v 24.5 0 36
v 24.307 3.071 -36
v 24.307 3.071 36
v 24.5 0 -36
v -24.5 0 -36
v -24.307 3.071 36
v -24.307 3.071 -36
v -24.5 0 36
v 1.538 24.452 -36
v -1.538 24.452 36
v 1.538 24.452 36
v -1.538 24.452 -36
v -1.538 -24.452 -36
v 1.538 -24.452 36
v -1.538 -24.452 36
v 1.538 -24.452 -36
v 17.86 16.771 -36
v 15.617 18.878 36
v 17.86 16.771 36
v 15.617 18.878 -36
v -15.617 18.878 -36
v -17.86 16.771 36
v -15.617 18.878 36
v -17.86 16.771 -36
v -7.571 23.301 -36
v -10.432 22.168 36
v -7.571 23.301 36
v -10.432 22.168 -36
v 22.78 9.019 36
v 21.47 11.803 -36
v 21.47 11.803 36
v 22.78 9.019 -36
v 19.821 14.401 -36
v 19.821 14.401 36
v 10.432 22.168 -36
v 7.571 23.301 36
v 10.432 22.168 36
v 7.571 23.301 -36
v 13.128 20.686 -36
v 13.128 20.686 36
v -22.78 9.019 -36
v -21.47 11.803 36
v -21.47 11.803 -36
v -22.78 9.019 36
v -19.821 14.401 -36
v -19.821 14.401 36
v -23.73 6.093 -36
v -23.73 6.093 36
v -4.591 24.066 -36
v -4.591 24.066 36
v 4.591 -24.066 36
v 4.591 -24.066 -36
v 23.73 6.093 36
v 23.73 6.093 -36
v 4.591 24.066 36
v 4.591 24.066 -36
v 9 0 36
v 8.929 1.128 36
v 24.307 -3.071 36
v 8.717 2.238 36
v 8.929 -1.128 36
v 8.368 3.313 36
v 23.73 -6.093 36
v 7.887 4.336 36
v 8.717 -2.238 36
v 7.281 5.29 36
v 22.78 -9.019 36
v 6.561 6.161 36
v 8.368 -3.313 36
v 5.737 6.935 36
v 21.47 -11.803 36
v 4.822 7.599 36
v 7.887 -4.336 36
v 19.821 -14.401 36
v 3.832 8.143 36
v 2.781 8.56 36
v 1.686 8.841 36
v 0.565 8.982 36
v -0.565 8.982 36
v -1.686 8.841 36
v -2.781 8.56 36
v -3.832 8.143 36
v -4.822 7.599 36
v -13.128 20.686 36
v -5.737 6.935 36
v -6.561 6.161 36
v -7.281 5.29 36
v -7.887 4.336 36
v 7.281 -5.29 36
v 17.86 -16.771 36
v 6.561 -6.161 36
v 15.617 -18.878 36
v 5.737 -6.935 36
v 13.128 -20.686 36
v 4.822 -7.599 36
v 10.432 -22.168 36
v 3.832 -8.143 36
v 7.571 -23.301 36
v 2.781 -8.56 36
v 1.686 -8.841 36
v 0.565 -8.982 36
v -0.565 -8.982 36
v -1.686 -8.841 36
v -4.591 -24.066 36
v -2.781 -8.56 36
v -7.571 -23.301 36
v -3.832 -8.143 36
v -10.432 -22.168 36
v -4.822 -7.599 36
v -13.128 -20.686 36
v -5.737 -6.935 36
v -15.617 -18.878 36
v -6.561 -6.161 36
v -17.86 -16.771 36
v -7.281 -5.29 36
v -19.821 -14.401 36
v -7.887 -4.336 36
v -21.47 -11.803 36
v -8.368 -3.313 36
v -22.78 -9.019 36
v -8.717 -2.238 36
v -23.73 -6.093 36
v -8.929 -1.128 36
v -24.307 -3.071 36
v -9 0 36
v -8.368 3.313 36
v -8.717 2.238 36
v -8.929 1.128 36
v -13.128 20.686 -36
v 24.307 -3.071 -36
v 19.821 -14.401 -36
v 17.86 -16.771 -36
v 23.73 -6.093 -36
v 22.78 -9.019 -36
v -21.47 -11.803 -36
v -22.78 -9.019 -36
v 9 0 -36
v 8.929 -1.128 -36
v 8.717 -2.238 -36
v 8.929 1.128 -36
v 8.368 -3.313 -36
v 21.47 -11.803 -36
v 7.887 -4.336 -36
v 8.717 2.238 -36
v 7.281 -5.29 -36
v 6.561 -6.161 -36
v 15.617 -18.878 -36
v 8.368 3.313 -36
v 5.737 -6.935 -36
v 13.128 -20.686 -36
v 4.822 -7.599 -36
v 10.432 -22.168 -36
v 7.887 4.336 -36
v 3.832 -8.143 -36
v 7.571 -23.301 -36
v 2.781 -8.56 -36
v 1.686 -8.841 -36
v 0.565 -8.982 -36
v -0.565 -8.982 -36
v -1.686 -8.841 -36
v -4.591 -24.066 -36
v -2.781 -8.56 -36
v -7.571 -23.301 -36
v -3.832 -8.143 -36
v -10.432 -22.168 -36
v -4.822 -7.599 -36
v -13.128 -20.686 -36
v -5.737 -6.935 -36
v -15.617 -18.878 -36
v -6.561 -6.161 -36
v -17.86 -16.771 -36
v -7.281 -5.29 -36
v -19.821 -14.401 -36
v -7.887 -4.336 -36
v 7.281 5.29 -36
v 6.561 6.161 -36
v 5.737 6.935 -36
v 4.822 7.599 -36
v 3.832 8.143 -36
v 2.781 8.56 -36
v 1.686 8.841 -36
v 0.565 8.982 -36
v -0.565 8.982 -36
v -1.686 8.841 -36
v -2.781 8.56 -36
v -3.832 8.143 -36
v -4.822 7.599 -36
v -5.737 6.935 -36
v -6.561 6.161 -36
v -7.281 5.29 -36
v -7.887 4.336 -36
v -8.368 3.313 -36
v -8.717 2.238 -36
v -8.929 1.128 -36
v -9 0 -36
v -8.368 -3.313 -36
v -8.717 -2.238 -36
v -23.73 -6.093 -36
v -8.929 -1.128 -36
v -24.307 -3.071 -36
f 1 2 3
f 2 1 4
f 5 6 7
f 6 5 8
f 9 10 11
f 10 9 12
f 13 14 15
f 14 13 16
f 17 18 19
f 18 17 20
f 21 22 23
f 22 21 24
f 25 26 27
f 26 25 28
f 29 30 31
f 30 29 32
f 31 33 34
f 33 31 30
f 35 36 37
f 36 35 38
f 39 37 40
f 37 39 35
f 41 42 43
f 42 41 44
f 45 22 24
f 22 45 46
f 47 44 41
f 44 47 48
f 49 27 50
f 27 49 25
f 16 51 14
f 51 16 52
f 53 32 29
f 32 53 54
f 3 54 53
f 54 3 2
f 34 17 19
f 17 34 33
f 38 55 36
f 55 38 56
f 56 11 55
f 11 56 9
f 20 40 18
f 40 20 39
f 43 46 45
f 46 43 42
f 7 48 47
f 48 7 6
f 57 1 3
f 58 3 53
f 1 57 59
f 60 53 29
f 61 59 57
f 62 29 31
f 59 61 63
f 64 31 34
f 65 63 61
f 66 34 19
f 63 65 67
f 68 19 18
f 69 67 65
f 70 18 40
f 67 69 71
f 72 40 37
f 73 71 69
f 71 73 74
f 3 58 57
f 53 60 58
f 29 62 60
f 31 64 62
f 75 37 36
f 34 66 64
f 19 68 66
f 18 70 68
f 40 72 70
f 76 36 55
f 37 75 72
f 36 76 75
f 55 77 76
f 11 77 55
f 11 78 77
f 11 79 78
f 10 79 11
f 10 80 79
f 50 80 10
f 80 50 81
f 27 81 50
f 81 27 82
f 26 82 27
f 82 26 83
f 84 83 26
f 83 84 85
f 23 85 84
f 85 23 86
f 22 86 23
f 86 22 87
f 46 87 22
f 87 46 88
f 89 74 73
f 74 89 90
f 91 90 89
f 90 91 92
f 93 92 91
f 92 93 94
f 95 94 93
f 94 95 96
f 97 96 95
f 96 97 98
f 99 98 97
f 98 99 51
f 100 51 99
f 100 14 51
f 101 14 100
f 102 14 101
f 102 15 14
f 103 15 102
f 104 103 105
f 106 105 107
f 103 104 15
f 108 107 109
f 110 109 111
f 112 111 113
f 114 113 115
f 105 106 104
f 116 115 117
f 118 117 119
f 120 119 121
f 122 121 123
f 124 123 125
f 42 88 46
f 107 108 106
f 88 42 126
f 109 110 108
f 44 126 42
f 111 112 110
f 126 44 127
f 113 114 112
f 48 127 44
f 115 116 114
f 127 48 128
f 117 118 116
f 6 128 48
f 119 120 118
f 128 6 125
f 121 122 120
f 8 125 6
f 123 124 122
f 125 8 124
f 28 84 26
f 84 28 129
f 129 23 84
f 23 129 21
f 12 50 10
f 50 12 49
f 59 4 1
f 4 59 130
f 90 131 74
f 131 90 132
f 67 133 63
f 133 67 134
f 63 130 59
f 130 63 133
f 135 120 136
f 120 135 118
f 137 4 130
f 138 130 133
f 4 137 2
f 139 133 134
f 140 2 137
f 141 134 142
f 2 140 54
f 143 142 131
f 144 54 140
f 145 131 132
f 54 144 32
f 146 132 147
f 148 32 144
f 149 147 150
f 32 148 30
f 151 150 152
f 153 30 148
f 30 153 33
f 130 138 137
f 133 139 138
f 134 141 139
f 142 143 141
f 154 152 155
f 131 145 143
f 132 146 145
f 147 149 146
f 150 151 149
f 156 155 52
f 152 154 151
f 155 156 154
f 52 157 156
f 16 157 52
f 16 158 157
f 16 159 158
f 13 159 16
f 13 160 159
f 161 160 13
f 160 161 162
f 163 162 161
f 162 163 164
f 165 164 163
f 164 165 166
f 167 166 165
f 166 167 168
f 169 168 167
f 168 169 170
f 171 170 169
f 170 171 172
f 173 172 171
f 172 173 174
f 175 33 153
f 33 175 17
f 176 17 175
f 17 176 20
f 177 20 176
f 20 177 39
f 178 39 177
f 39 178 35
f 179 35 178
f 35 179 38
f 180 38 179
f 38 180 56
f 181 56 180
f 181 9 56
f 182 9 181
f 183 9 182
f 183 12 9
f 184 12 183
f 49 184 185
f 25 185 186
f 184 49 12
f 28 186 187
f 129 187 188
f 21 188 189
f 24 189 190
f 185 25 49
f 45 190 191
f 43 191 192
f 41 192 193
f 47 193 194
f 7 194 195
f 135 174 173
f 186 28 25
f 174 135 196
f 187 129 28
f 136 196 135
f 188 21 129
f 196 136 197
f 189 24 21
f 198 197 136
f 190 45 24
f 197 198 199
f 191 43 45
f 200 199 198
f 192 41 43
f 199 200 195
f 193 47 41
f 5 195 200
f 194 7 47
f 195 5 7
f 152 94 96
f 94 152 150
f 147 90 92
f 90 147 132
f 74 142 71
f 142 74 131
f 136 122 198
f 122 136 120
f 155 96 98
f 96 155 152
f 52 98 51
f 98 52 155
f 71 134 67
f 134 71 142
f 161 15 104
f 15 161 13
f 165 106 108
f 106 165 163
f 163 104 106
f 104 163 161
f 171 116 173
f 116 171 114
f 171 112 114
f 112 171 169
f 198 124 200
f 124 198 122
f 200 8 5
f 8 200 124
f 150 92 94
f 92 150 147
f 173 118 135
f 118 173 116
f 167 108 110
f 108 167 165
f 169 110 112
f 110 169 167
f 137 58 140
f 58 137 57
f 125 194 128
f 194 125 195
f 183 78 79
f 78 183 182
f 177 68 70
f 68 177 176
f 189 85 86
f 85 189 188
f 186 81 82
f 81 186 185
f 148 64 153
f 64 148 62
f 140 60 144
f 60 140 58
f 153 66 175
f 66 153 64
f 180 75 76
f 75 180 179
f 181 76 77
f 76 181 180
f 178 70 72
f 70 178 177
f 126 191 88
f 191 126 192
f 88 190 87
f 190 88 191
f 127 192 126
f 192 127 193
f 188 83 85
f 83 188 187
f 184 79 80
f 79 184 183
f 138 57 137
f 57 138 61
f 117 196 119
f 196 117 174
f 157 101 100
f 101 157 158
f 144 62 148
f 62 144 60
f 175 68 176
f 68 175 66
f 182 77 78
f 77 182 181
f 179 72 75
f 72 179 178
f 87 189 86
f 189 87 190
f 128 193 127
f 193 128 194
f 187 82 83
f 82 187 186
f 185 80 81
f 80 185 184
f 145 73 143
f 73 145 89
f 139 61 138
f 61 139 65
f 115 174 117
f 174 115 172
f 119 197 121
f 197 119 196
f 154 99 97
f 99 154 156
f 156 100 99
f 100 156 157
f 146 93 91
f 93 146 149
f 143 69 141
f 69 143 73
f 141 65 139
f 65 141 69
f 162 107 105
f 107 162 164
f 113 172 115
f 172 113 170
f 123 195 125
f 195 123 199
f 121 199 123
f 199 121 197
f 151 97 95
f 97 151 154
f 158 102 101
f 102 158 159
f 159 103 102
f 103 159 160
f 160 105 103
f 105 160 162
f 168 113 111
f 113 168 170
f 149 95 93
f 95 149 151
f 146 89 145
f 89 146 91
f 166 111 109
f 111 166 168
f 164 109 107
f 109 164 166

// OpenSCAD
$fn = 50;


difference() {
	union() {
		translate(v = [0, 0, -36.0000000000]) {
			cylinder(h = 72, r = 24.5000000000);
		}
	}
	union() {
		translate(v = [0, 0, -100.0000000000]) {
			cylinder(h = 200, r = 9);
		}
	}
}
